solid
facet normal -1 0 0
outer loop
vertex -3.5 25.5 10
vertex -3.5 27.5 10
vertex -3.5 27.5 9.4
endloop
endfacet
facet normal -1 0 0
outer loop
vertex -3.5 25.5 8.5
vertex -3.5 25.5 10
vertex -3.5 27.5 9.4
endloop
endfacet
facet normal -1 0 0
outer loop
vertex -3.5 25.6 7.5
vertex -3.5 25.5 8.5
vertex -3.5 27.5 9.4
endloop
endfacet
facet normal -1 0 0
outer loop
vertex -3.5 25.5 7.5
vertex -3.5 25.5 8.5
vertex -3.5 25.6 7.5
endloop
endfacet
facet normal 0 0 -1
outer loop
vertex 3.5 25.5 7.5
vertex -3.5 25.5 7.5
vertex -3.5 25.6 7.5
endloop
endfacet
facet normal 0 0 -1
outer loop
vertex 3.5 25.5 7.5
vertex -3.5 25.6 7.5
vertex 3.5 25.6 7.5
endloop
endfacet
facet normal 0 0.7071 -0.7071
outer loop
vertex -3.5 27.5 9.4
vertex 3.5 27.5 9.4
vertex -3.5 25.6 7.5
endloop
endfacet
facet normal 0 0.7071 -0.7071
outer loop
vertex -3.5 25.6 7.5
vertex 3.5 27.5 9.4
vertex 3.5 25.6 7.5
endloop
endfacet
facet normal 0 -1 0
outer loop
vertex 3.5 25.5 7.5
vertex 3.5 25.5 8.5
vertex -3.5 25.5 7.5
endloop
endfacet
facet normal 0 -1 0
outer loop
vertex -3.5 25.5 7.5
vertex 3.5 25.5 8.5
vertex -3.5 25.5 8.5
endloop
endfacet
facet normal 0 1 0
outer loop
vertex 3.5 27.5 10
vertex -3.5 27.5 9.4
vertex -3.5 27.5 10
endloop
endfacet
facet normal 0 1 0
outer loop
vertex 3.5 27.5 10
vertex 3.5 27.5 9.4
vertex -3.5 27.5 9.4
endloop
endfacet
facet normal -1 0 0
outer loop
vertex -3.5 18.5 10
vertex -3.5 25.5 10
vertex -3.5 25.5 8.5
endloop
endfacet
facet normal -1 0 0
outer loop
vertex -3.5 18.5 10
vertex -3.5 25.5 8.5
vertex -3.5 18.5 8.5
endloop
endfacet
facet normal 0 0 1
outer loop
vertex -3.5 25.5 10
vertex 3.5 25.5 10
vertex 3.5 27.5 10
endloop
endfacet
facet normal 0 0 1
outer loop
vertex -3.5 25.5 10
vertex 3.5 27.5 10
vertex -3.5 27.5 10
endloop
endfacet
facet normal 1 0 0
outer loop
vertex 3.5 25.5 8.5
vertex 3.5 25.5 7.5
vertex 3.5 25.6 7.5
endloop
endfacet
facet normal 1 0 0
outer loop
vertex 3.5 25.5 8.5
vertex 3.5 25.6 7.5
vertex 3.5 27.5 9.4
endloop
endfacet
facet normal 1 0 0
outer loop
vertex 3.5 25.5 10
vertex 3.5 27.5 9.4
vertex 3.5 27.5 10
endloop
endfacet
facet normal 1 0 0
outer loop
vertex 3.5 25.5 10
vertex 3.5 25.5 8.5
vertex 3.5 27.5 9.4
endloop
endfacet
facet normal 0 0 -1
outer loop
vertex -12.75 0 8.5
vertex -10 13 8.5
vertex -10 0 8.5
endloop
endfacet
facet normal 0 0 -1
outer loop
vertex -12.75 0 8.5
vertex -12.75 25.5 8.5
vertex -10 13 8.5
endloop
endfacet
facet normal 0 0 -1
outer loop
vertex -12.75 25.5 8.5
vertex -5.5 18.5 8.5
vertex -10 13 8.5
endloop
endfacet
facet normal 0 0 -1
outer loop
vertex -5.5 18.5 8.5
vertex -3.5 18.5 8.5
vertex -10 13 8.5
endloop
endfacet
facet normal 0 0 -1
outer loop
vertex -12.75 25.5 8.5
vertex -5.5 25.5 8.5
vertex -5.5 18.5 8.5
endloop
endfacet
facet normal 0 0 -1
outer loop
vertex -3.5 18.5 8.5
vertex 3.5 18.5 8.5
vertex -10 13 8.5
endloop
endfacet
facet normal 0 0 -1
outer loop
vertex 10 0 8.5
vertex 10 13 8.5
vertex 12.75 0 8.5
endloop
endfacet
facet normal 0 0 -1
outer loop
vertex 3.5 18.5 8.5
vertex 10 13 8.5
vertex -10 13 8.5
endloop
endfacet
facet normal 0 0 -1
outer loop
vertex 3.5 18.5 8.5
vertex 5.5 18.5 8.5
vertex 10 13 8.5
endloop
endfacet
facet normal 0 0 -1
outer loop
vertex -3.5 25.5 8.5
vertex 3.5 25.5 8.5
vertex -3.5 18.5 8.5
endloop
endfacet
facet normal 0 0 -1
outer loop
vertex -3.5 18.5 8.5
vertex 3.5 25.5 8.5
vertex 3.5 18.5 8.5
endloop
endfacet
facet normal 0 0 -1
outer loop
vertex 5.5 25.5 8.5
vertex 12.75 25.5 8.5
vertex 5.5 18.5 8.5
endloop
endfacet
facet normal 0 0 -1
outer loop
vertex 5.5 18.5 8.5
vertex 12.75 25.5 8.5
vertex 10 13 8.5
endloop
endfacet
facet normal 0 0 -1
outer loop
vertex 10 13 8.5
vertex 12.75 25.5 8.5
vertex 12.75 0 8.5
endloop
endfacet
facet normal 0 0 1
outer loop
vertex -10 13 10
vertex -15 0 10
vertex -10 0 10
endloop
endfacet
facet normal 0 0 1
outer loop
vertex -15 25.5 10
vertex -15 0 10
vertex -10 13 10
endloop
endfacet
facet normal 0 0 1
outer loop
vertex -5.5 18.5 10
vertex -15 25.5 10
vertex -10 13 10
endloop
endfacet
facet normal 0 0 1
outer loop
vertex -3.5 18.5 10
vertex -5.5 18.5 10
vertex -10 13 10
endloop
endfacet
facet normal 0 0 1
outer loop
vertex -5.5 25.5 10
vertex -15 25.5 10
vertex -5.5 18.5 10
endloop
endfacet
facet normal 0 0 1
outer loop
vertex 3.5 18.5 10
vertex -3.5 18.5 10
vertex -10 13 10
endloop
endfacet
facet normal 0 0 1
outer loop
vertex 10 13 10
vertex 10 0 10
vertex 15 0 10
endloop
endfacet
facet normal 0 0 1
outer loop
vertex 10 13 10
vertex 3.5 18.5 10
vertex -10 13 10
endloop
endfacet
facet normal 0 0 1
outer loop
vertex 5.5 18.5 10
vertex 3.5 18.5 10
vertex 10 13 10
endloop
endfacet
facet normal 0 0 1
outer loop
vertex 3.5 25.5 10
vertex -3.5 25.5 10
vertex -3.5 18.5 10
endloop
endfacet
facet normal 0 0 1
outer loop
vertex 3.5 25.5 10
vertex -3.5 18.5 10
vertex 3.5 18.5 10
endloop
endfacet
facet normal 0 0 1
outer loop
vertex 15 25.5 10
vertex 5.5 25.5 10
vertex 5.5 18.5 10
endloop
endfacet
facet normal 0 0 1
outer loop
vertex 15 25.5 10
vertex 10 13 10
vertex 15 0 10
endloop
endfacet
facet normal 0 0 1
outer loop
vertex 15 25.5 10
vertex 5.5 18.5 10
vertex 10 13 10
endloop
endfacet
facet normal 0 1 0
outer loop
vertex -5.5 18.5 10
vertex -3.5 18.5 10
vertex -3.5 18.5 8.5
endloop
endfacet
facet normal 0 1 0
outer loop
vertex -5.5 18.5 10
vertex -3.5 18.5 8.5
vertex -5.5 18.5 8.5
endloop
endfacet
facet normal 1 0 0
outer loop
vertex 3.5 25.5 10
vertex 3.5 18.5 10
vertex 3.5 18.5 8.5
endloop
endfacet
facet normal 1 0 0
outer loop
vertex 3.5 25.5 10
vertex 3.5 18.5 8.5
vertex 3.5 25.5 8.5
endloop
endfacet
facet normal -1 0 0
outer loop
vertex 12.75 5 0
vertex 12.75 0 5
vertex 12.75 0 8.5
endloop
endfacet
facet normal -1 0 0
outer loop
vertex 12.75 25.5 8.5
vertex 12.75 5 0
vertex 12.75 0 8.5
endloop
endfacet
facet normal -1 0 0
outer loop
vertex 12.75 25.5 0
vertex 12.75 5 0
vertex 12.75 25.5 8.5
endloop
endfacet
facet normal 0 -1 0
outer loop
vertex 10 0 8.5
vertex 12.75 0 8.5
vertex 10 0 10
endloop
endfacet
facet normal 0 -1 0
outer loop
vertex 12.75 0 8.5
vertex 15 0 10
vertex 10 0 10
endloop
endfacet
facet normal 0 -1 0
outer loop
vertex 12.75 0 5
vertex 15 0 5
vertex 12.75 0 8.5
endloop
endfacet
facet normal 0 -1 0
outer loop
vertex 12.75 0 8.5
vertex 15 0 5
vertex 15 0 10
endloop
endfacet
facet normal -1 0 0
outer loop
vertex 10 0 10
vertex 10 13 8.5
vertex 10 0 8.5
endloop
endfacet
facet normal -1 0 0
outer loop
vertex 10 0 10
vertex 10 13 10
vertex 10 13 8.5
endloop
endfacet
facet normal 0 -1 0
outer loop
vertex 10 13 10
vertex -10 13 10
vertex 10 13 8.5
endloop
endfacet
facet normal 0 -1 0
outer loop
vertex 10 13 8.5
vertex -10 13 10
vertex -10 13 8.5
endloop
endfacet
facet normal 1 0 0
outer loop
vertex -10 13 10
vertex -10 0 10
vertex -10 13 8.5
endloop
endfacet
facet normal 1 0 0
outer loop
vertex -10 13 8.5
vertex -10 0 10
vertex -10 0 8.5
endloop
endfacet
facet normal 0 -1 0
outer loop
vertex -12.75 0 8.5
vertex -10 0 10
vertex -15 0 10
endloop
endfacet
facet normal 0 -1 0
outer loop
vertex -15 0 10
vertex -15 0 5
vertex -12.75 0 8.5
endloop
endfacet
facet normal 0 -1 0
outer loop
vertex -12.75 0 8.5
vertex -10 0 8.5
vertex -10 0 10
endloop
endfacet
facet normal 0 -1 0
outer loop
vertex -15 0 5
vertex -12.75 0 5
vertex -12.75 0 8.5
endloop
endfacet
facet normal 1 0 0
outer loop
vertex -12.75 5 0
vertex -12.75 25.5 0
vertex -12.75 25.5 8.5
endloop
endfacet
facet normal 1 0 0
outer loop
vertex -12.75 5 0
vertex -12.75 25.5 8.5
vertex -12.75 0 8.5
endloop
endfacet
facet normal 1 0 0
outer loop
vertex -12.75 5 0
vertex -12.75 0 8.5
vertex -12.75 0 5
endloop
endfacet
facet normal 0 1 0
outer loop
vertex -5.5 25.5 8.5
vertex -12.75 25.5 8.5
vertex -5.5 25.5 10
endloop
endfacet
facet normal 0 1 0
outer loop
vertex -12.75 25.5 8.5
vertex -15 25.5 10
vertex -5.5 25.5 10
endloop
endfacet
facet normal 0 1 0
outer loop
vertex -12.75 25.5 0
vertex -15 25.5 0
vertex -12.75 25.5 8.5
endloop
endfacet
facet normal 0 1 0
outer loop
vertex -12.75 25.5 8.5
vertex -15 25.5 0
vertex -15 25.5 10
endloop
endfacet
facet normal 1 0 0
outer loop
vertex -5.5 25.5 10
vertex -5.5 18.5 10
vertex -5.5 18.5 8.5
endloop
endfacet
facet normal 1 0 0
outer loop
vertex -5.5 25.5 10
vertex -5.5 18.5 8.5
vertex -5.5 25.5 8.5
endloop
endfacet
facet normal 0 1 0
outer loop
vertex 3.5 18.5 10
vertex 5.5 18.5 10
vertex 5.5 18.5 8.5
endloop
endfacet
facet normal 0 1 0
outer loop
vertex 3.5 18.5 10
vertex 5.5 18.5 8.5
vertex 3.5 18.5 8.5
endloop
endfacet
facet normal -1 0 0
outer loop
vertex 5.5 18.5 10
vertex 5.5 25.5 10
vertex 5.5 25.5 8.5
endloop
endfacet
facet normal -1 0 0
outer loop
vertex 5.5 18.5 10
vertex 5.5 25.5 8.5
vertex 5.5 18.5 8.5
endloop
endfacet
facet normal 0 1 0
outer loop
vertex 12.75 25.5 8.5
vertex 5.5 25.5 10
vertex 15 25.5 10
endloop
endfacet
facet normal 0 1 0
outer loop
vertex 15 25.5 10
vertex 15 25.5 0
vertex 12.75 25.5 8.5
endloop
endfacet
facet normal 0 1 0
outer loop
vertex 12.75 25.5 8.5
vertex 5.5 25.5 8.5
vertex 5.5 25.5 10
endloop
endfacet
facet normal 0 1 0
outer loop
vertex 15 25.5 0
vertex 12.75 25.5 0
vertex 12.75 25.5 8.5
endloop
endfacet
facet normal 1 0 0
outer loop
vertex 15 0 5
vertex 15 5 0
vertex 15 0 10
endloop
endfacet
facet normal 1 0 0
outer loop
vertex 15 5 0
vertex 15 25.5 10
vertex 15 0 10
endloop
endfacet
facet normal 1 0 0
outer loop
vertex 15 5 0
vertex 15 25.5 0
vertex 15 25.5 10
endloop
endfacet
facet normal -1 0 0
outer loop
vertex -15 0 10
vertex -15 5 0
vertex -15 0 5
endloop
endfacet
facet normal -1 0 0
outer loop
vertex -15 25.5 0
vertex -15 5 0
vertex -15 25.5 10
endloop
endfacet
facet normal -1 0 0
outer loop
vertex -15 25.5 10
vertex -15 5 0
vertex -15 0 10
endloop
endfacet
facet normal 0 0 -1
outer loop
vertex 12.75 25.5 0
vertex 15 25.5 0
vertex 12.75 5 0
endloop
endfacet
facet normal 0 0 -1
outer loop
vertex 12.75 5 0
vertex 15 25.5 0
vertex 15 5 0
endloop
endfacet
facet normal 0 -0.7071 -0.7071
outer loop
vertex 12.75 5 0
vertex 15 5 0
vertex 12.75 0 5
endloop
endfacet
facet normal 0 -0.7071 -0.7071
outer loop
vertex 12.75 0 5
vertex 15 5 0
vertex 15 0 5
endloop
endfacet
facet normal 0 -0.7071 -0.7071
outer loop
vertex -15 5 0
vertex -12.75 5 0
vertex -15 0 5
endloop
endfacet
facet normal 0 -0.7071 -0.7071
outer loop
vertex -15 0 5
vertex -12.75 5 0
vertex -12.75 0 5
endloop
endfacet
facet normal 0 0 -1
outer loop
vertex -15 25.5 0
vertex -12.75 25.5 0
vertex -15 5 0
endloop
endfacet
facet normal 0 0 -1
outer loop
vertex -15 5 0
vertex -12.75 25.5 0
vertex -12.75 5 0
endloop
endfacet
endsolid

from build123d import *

# Parameters (mm, degrees)
SKETCH_W        = 30
SKETCH_H        = 25.5
PAD_DEPTH       = 10
SKETCH001_W     = 25.5
SKETCH001_H     = 30
POCKET_DEPTH    = 8.5
SKETCH002_W     = 20
SKETCH002_H     = 13
POCKET001_DEPTH = 5
CHAMFER_SIZE    = 5
SKETCH003_W     = 2
SKETCH003_H     = 7
POCKET002_DEPTH = 5
SKETCH004_W     = 7
SKETCH004_H     = 2.5
PAD001_DEPTH    = 2
CHAMFER001_SIZE = 1.9


with BuildPart() as part:
    # Sketch → Pad (new body)
    with BuildSketch(Plane.XY):
        with Locations((0, 12.75)):
            Rectangle(SKETCH_W, SKETCH_H)
    extrude(amount=PAD_DEPTH)

    # Sketch001 (on Face5 of Pad) → Pocket (cut)
    with BuildSketch(Plane(origin=(0, 0, 0), x_dir=(1, 0, 0), z_dir=(0, 0, -1))):
        with Locations((0, -15)):
            Rectangle(SKETCH001_W, SKETCH001_H)
    extrude(amount=-POCKET_DEPTH, mode=Mode.SUBTRACT)

    # Sketch002 → Pocket001 (cut)
    with BuildSketch(Plane.XY.offset(10)):
        with Locations((0, 6.5)):
            Rectangle(SKETCH002_W, SKETCH002_H)
    extrude(amount=-POCKET001_DEPTH, mode=Mode.SUBTRACT)

    # Chamfer
    chamfer_edges = [part.edges().sort_by_distance(p)[0] for p in [
        (13.875, 0, 0),
        (-13.875, 0, 0),
    ]]
    chamfer(chamfer_edges, length=CHAMFER_SIZE)

    # Sketch003 (on Face7 of Chamfer) → Pocket002 (cut)
    with BuildSketch(Plane.XY.offset(10)):
        with Locations((-4.5, 22)):
            Rectangle(SKETCH003_W, SKETCH003_H)
        with Locations((4.5, 22)):
            Rectangle(SKETCH003_W, SKETCH003_H)
    extrude(amount=-POCKET002_DEPTH, mode=Mode.SUBTRACT)

    # Sketch004 (on Face17 of Pocket002) → Pad001 (join)
    with BuildSketch(Plane(origin=(0, 25.5, 0), x_dir=(-1, 0, 0), z_dir=(0, 1, 0))):
        with Locations((0, 8.75)):
            Rectangle(SKETCH004_W, SKETCH004_H)
    extrude(amount=PAD001_DEPTH)

    # Chamfer001
    chamfer001_edges = [part.edges().sort_by_distance(p)[0] for p in [
        (0, 27.5, 7.5),
    ]]
    chamfer(chamfer001_edges, length=CHAMFER001_SIZE)


solid = part.part
